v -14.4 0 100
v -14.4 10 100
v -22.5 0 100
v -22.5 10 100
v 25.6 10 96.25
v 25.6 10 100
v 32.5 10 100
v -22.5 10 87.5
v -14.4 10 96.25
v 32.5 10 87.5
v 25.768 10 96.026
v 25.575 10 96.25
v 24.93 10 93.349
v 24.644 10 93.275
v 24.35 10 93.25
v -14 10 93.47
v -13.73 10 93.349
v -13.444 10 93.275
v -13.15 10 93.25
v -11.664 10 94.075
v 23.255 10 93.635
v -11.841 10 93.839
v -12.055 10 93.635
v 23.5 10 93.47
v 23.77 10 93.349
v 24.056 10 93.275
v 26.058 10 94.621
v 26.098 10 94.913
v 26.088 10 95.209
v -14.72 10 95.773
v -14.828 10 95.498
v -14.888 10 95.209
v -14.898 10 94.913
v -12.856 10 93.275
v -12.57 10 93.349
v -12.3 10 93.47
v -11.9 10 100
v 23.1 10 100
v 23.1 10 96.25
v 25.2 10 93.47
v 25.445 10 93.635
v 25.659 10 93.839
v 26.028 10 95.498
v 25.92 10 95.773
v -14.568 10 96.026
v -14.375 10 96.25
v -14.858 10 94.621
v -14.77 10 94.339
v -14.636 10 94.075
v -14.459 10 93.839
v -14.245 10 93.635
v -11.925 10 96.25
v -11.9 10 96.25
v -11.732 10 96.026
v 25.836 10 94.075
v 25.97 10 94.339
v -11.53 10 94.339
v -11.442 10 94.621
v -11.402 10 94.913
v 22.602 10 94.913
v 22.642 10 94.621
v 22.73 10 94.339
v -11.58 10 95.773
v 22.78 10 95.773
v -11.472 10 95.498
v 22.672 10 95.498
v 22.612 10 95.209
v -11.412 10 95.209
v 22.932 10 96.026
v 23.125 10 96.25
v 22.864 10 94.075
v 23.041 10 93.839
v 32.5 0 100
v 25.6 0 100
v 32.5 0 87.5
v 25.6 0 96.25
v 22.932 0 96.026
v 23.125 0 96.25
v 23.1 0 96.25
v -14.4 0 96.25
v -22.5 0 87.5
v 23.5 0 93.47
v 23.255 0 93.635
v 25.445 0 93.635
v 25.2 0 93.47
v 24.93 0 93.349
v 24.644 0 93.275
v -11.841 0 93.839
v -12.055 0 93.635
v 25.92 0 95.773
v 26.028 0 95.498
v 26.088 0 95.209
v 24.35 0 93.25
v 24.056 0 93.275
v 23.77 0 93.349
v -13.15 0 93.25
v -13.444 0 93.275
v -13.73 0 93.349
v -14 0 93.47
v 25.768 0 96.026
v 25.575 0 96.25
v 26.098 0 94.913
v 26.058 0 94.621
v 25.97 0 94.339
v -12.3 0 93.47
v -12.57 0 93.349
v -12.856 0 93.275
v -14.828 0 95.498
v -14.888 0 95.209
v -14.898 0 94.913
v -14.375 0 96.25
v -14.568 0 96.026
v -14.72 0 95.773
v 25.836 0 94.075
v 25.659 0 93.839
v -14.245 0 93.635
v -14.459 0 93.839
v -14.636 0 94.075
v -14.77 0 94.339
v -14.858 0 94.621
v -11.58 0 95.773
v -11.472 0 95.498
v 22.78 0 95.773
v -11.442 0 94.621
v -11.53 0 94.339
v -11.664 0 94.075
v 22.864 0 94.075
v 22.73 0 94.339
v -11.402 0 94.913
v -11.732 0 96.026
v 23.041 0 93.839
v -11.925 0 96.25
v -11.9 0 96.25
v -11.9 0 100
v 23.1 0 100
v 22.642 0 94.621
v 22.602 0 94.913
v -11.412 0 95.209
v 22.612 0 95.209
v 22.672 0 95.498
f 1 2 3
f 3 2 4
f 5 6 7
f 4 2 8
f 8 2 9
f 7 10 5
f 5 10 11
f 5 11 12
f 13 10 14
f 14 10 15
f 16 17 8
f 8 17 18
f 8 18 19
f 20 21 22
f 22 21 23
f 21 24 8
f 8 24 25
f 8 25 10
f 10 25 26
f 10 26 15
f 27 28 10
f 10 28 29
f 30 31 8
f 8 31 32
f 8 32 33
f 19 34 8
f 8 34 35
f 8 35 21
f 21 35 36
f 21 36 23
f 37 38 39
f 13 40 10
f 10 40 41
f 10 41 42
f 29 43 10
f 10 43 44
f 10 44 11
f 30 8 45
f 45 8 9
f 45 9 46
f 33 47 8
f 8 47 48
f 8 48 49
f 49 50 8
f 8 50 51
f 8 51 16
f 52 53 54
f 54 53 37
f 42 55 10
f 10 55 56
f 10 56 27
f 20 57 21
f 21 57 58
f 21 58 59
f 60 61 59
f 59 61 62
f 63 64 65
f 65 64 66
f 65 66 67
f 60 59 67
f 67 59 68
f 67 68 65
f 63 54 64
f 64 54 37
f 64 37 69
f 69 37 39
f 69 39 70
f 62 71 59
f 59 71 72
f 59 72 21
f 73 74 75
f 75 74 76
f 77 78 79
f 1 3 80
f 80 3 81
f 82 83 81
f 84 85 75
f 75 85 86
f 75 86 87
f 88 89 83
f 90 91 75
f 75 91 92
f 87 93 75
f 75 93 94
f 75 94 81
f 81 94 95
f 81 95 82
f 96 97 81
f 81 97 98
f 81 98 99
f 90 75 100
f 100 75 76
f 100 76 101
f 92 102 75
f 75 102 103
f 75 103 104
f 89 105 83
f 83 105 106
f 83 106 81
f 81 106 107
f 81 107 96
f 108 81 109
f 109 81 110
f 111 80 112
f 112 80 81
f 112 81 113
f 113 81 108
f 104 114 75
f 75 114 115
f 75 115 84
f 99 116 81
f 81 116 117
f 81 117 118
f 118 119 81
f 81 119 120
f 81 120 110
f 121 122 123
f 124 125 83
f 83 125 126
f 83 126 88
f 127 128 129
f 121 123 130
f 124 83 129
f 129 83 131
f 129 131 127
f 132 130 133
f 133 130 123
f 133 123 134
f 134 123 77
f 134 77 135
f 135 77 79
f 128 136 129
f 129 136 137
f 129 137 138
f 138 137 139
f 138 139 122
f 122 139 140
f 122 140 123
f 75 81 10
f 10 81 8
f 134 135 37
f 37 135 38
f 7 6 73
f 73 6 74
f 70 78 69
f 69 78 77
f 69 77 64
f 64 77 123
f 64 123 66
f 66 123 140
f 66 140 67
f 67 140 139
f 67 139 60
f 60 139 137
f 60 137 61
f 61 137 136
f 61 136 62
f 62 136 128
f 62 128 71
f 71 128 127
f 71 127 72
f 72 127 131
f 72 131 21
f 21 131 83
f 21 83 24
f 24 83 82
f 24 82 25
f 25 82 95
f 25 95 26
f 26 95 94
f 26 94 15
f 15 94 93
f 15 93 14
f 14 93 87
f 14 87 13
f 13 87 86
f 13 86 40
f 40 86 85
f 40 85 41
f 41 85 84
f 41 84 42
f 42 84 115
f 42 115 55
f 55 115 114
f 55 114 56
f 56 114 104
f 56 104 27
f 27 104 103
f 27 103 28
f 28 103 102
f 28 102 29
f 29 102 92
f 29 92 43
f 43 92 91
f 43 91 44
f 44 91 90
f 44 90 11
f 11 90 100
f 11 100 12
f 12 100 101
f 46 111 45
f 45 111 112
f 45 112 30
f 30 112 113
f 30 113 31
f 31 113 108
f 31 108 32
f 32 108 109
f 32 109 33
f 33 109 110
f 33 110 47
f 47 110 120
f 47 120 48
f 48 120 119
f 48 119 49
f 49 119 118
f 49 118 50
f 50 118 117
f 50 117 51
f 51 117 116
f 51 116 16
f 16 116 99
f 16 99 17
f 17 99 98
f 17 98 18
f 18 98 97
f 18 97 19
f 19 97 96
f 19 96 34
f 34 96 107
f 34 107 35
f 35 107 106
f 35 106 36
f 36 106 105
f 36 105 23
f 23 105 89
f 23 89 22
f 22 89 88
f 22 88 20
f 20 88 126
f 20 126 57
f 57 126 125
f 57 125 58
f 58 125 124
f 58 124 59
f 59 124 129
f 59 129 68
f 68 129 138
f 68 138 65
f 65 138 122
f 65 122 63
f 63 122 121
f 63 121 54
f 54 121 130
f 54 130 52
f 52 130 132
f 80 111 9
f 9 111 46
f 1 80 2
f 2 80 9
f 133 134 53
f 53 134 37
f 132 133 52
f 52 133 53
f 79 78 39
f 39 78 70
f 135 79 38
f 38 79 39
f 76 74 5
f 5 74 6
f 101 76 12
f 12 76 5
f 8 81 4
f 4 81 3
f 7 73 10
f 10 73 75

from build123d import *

# Parameters (mm, degrees)
SKETCH1_R               = 72.5
SKETCH1_R_2             = 62.5
BOSS_EXTRUDE1_DEPTH     = 10
SKETCH2_W               = 25
SKETCH2_H               = 10
BOSS_EXTRUDE2_DEPTH     = 100
SKETCH3_W               = 145
SKETCH3_H               = 50
BOSS_EXTRUDE3_DEPTH     = 10
CUT_EXTRUDE1_START      = -10
SKETCH4_R               = 62.5
CUT_EXTRUDE1_DEPTH      = 10
SKETCH5_W               = 145
SKETCH5_H               = 12.5
BOSS_EXTRUDE4_DEPTH     = 50
CUT_EXTRUDE2_DEPTH      = 138.318061449
CUT_EXTRUDE2_DEPTH_BACK = 138.318061449
SKETCH6_R               = 1.75
CUT_EXTRUDE3_DEPTH      = 138.318061449
CUT_EXTRUDE3_DEPTH_BACK = 138.318061449
SKETCH7_W               = 2.5
SKETCH7_H               = 7.5
SKETCH8_W               = 145
SKETCH8_H               = 12.5
CUT_EXTRUDE4_DEPTH      = 50
SKETCH9_W               = 145
SKETCH9_H               = 10
CUT_EXTRUDE5_DEPTH      = 87.5
SKETCH11_W              = 12.5
SKETCH11_H              = 10
CUT_EXTRUDE7_DEPTH      = 15
SKETCH13_W              = 12.5
SKETCH13_H              = 10
CUT_EXTRUDE9_DEPTH      = 50
SKETCH14_W              = 12.5
SKETCH14_H              = 10
CUT_EXTRUDE10_DEPTH     = 25


with BuildPart() as part:
    # Sketch1 → Boss-Extrude1 (new body)
    with BuildSketch(Plane(origin=(0, 0, 0), x_dir=(1, 0, 0), z_dir=(0, 1, 0))):
        with Locations(Location((0, 0, 0), (0, 0, 270))):
            Circle(SKETCH1_R)
        with Locations(Location((0, 0, 0), (0, 0, 270))):
            Circle(SKETCH1_R_2, mode=Mode.SUBTRACT)
    extrude(amount=BOSS_EXTRUDE1_DEPTH)

    # Sketch2 → Boss-Extrude2 (add)
    with BuildSketch(Plane.XY):
        with Locations((-60, 5)):
            Rectangle(SKETCH2_W, SKETCH2_H)
        with Locations((60, 5)):
            Rectangle(SKETCH2_W, SKETCH2_H)
    extrude(amount=BOSS_EXTRUDE2_DEPTH)

    # Sketch3 → Boss-Extrude3 (add)
    with BuildSketch(Plane(origin=(0, 10, 0), x_dir=(1, 0, 0), z_dir=(0, 1, 0))):
        with Locations((0, -75)):
            Rectangle(SKETCH3_W, SKETCH3_H)
    extrude(amount=-BOSS_EXTRUDE3_DEPTH)

    # Sketch4 → Cut-Extrude1 (cut)
    with BuildSketch(Plane(origin=(0, 10, 0), x_dir=(1, 0, 0), z_dir=(0, 1, 0)).offset(CUT_EXTRUDE1_START)):
        with Locations(Location((0, 0, 0), (0, 0, 270))):
            Circle(SKETCH4_R)
    extrude(amount=CUT_EXTRUDE1_DEPTH, mode=Mode.SUBTRACT)

    # Sketch5 → Boss-Extrude4 (add)
    with BuildSketch(Plane(origin=(0, 10, 0), x_dir=(1, 0, 0), z_dir=(0, 1, 0))):
        with Locations((0, -93.75)):
            Rectangle(SKETCH5_W, SKETCH5_H)
    extrude(amount=BOSS_EXTRUDE4_DEPTH)

    # Sketch6 → Cut-Extrude2 (cut, two sides: drawn at the far end of the back side and taken through both)
    with BuildSketch(Plane.XZ.offset(-CUT_EXTRUDE2_DEPTH_BACK)):
        with Locations(Location((-50.65, 95, 0), (0, 0, 270))):
            Circle(SKETCH6_R)
        with Locations(Location((-13.15, 95, 0), (0, 0, 270))):
            Circle(SKETCH6_R)
        with Locations(Location((24.35, 95, 0), (0, 0, 270))):
            Circle(SKETCH6_R)
        with Locations(Location((61.85, 95, 0), (0, 0, 270))):
            Circle(SKETCH6_R)
    extrude(amount=CUT_EXTRUDE2_DEPTH + CUT_EXTRUDE2_DEPTH_BACK, mode=Mode.SUBTRACT)

    # Sketch7 → Cut-Extrude3 (cut, two sides: drawn at the far end of the back side and taken through both)
    with BuildSketch(Plane.XZ.offset(-CUT_EXTRUDE3_DEPTH_BACK)):
        with Locations((-13.15, 100)):
            Rectangle(SKETCH7_W, SKETCH7_H)
        with Locations((-50.65, 100)):
            Rectangle(SKETCH7_W, SKETCH7_H)
        with Locations((24.35, 100)):
            Rectangle(SKETCH7_W, SKETCH7_H)
        with Locations((61.85, 100)):
            Rectangle(SKETCH7_W, SKETCH7_H)
    extrude(amount=CUT_EXTRUDE3_DEPTH + CUT_EXTRUDE3_DEPTH_BACK, mode=Mode.SUBTRACT)

    # Sketch8 → Cut-Extrude4 (cut)
    with BuildSketch(Plane(origin=(0, 60, 0), x_dir=(1, 0, 0), z_dir=(0, 1, 0))):
        with Locations((0, -93.75)):
            Rectangle(SKETCH8_W, SKETCH8_H)
    extrude(amount=-CUT_EXTRUDE4_DEPTH, mode=Mode.SUBTRACT)

    # Sketch9 → Cut-Extrude5 (cut, symmetric)
    with BuildSketch(Plane.XY):
        with Locations((0, 5)):
            Rectangle(SKETCH9_W, SKETCH9_H)
    extrude(amount=CUT_EXTRUDE5_DEPTH, both=True, mode=Mode.SUBTRACT)

    # Sketch11 → Cut-Extrude7 (cut)
    with BuildSketch(Plane(origin=(72.5, 0, 0), x_dir=(0, 0, -1), z_dir=(1, 0, 0))):
        with Locations((-93.75, 5)):
            Rectangle(SKETCH11_W, SKETCH11_H)
    extrude(amount=-CUT_EXTRUDE7_DEPTH, mode=Mode.SUBTRACT)

    # Sketch13 → Cut-Extrude9 (cut)
    with BuildSketch(Plane.ZY.offset(72.5)):
        with Locations((93.75, 5)):
            Rectangle(SKETCH13_W, SKETCH13_H)
    extrude(amount=-CUT_EXTRUDE9_DEPTH, mode=Mode.SUBTRACT)

    # Sketch14 → Cut-Extrude10 (cut)
    with BuildSketch(Plane(origin=(57.5, 0, 0), x_dir=(0, 0, -1), z_dir=(1, 0, 0))):
        with Locations((-93.75, 5)):
            Rectangle(SKETCH14_W, SKETCH14_H)
    extrude(amount=-CUT_EXTRUDE10_DEPTH, mode=Mode.SUBTRACT)


solid = part.part
